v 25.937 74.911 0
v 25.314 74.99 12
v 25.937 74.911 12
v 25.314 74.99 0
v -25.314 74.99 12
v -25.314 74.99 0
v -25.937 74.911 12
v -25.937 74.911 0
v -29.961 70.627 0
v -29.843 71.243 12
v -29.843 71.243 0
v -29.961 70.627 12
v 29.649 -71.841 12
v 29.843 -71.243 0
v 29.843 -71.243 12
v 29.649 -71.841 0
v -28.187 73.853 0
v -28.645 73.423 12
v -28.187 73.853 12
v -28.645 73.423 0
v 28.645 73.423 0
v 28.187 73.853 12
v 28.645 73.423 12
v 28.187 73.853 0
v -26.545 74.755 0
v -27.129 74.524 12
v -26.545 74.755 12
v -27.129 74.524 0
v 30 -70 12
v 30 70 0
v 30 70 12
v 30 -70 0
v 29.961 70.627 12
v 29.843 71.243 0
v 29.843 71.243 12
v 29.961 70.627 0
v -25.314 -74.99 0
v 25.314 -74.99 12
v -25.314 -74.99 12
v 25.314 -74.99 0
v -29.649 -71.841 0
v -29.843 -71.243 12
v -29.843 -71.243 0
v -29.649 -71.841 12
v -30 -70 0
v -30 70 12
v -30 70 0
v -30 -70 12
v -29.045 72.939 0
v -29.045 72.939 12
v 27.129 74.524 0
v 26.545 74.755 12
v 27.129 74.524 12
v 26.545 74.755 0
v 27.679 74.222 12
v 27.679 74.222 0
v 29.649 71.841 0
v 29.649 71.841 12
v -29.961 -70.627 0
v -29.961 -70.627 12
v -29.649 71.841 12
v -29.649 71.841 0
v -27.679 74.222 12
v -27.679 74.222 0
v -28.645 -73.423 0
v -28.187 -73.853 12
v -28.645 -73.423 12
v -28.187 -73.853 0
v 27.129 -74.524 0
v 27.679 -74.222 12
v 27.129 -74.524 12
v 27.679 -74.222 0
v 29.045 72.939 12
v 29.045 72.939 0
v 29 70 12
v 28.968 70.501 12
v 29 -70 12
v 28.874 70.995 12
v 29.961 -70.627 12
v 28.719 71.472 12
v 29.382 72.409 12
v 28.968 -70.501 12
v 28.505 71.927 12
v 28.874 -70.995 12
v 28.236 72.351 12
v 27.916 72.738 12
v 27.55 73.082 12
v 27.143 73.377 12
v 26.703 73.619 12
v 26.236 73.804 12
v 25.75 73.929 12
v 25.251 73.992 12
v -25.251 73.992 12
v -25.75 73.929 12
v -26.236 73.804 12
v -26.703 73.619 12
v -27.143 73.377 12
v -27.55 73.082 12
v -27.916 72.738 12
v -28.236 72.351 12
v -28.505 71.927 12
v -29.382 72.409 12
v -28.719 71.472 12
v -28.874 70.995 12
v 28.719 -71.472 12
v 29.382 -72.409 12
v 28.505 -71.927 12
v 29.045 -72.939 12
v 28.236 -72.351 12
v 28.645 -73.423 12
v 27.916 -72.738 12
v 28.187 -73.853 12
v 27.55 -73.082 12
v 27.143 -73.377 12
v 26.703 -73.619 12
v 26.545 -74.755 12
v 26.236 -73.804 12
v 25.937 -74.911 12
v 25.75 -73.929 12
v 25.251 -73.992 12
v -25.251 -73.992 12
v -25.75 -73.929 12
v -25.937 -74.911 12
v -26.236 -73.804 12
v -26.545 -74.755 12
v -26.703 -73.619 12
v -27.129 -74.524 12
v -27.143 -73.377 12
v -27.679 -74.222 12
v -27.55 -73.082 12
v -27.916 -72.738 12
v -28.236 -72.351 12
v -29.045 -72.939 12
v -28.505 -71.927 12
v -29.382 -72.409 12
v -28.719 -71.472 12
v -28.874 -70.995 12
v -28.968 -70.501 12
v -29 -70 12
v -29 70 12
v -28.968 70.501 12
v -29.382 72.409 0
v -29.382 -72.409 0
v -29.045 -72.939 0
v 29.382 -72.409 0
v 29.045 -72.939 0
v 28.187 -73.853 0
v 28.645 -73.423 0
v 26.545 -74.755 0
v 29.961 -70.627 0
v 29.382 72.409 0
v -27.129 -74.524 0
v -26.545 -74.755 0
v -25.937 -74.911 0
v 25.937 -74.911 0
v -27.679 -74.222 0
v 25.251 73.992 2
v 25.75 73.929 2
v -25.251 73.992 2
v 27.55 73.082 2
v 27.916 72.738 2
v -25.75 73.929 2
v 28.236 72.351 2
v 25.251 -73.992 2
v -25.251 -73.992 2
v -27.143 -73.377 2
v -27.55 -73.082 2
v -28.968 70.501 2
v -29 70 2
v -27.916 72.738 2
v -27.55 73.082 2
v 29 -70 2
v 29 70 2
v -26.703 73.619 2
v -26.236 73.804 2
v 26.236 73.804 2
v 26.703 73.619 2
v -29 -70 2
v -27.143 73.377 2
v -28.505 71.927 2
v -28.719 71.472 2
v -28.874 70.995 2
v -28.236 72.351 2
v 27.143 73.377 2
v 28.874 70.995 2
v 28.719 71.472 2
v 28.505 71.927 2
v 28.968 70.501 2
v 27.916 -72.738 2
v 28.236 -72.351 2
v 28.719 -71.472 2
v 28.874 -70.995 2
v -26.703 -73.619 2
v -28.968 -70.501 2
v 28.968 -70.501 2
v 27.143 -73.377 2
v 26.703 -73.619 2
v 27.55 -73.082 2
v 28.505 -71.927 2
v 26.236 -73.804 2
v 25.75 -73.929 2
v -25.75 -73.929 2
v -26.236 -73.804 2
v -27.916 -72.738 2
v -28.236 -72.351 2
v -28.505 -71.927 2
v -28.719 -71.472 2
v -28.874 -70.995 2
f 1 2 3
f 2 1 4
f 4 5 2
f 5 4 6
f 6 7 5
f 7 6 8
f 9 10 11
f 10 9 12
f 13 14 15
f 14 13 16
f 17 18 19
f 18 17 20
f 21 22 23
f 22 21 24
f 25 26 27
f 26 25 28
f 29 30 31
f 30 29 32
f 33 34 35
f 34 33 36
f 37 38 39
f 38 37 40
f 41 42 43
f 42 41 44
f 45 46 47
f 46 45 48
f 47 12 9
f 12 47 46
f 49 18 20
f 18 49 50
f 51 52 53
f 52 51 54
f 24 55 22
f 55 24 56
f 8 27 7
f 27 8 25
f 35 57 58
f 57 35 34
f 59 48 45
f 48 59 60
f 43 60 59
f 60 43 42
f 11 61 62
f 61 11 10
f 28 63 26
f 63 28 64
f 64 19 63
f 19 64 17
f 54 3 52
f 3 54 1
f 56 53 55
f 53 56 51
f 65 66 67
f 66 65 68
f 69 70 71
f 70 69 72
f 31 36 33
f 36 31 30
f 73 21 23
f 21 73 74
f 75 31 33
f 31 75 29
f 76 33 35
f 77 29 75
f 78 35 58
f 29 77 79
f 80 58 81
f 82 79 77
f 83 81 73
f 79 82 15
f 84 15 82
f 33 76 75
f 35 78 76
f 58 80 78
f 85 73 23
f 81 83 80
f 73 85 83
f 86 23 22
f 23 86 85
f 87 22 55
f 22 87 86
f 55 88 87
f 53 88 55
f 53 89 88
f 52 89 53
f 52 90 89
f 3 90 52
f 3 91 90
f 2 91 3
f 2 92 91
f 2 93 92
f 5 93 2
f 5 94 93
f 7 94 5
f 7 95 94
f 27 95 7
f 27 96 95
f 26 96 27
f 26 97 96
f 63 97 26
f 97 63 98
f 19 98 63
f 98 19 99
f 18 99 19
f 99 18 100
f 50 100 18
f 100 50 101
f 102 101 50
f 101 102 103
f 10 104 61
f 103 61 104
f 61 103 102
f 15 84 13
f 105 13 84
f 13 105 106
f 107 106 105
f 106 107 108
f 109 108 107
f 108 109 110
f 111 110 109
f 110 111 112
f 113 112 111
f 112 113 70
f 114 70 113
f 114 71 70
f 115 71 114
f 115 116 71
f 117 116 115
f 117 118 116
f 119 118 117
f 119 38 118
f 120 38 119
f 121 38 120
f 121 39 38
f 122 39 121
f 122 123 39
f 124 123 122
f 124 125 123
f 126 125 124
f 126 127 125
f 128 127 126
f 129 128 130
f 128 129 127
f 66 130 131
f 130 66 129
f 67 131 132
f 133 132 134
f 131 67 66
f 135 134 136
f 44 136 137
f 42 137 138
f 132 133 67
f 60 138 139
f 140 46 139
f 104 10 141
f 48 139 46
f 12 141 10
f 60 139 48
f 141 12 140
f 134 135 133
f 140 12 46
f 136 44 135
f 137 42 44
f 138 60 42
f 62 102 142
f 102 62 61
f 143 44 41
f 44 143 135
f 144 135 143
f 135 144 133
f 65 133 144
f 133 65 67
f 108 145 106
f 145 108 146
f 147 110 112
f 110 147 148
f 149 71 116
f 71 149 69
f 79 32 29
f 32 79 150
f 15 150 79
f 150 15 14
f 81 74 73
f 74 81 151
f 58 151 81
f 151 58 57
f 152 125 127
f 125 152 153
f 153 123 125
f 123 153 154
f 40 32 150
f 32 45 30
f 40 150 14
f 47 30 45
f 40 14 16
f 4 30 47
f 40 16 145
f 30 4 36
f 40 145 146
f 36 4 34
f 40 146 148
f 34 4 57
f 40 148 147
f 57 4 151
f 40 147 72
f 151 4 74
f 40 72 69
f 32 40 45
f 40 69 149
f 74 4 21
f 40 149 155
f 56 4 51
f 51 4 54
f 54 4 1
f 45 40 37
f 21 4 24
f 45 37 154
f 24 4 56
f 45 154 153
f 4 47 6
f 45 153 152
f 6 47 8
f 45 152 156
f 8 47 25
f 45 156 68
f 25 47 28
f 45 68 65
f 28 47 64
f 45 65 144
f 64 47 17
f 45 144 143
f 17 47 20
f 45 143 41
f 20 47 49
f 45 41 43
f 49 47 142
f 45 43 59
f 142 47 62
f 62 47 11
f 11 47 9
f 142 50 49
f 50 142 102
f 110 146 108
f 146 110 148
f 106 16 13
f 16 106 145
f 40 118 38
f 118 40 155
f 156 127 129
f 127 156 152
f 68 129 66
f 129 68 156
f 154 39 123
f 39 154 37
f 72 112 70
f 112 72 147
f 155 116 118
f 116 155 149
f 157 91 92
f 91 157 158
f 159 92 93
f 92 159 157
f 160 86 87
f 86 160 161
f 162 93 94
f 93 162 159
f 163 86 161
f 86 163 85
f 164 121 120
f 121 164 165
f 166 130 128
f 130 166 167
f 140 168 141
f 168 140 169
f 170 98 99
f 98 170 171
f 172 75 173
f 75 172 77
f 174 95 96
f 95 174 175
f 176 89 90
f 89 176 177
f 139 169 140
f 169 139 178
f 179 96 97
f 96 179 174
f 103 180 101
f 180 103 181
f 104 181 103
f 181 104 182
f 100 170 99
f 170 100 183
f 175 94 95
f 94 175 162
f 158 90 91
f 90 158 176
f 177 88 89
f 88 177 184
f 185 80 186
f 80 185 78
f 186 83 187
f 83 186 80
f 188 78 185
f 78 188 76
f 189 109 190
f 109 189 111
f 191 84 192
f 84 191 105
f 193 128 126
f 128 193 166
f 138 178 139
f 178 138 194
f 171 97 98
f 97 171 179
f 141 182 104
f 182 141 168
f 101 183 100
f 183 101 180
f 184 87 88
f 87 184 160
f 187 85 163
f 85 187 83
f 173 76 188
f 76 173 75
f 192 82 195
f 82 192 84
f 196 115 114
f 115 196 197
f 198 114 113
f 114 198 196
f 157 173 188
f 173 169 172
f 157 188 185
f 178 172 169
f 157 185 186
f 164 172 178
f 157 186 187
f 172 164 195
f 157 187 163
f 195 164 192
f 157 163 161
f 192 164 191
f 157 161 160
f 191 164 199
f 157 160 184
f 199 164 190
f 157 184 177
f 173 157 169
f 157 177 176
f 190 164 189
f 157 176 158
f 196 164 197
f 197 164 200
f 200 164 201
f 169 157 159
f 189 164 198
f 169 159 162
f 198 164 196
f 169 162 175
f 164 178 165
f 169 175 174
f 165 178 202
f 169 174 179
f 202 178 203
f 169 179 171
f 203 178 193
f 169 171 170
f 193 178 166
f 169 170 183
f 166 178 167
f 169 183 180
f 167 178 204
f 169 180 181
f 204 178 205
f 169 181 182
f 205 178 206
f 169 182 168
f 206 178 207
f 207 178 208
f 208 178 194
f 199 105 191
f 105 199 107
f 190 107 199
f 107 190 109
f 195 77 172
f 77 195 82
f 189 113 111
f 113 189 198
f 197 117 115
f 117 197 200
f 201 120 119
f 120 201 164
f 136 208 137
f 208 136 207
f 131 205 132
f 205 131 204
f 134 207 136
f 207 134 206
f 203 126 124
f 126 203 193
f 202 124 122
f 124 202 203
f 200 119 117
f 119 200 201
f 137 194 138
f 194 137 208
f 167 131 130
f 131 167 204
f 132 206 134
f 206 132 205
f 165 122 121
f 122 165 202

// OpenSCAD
$fn = 50;


difference() {
	union() {
		hull() {
			translate(v = [-25.0000000000, 70.0000000000, 0]) {
				cylinder(h = 12, r = 5);
			}
			translate(v = [25.0000000000, 70.0000000000, 0]) {
				cylinder(h = 12, r = 5);
			}
			translate(v = [-25.0000000000, -70.0000000000, 0]) {
				cylinder(h = 12, r = 5);
			}
			translate(v = [25.0000000000, -70.0000000000, 0]) {
				cylinder(h = 12, r = 5);
			}
		}
	}
	union() {
		translate(v = [0, 0, 2]) {
			hull() {
				translate(v = [-25.0000000000, 70.0000000000, 0]) {
					cylinder(h = 10, r = 4);
				}
				translate(v = [25.0000000000, 70.0000000000, 0]) {
					cylinder(h = 10, r = 4);
				}
				translate(v = [-25.0000000000, -70.0000000000, 0]) {
					cylinder(h = 10, r = 4);
				}
				translate(v = [25.0000000000, -70.0000000000, 0]) {
					cylinder(h = 10, r = 4);
				}
			}
		}
	}
}
